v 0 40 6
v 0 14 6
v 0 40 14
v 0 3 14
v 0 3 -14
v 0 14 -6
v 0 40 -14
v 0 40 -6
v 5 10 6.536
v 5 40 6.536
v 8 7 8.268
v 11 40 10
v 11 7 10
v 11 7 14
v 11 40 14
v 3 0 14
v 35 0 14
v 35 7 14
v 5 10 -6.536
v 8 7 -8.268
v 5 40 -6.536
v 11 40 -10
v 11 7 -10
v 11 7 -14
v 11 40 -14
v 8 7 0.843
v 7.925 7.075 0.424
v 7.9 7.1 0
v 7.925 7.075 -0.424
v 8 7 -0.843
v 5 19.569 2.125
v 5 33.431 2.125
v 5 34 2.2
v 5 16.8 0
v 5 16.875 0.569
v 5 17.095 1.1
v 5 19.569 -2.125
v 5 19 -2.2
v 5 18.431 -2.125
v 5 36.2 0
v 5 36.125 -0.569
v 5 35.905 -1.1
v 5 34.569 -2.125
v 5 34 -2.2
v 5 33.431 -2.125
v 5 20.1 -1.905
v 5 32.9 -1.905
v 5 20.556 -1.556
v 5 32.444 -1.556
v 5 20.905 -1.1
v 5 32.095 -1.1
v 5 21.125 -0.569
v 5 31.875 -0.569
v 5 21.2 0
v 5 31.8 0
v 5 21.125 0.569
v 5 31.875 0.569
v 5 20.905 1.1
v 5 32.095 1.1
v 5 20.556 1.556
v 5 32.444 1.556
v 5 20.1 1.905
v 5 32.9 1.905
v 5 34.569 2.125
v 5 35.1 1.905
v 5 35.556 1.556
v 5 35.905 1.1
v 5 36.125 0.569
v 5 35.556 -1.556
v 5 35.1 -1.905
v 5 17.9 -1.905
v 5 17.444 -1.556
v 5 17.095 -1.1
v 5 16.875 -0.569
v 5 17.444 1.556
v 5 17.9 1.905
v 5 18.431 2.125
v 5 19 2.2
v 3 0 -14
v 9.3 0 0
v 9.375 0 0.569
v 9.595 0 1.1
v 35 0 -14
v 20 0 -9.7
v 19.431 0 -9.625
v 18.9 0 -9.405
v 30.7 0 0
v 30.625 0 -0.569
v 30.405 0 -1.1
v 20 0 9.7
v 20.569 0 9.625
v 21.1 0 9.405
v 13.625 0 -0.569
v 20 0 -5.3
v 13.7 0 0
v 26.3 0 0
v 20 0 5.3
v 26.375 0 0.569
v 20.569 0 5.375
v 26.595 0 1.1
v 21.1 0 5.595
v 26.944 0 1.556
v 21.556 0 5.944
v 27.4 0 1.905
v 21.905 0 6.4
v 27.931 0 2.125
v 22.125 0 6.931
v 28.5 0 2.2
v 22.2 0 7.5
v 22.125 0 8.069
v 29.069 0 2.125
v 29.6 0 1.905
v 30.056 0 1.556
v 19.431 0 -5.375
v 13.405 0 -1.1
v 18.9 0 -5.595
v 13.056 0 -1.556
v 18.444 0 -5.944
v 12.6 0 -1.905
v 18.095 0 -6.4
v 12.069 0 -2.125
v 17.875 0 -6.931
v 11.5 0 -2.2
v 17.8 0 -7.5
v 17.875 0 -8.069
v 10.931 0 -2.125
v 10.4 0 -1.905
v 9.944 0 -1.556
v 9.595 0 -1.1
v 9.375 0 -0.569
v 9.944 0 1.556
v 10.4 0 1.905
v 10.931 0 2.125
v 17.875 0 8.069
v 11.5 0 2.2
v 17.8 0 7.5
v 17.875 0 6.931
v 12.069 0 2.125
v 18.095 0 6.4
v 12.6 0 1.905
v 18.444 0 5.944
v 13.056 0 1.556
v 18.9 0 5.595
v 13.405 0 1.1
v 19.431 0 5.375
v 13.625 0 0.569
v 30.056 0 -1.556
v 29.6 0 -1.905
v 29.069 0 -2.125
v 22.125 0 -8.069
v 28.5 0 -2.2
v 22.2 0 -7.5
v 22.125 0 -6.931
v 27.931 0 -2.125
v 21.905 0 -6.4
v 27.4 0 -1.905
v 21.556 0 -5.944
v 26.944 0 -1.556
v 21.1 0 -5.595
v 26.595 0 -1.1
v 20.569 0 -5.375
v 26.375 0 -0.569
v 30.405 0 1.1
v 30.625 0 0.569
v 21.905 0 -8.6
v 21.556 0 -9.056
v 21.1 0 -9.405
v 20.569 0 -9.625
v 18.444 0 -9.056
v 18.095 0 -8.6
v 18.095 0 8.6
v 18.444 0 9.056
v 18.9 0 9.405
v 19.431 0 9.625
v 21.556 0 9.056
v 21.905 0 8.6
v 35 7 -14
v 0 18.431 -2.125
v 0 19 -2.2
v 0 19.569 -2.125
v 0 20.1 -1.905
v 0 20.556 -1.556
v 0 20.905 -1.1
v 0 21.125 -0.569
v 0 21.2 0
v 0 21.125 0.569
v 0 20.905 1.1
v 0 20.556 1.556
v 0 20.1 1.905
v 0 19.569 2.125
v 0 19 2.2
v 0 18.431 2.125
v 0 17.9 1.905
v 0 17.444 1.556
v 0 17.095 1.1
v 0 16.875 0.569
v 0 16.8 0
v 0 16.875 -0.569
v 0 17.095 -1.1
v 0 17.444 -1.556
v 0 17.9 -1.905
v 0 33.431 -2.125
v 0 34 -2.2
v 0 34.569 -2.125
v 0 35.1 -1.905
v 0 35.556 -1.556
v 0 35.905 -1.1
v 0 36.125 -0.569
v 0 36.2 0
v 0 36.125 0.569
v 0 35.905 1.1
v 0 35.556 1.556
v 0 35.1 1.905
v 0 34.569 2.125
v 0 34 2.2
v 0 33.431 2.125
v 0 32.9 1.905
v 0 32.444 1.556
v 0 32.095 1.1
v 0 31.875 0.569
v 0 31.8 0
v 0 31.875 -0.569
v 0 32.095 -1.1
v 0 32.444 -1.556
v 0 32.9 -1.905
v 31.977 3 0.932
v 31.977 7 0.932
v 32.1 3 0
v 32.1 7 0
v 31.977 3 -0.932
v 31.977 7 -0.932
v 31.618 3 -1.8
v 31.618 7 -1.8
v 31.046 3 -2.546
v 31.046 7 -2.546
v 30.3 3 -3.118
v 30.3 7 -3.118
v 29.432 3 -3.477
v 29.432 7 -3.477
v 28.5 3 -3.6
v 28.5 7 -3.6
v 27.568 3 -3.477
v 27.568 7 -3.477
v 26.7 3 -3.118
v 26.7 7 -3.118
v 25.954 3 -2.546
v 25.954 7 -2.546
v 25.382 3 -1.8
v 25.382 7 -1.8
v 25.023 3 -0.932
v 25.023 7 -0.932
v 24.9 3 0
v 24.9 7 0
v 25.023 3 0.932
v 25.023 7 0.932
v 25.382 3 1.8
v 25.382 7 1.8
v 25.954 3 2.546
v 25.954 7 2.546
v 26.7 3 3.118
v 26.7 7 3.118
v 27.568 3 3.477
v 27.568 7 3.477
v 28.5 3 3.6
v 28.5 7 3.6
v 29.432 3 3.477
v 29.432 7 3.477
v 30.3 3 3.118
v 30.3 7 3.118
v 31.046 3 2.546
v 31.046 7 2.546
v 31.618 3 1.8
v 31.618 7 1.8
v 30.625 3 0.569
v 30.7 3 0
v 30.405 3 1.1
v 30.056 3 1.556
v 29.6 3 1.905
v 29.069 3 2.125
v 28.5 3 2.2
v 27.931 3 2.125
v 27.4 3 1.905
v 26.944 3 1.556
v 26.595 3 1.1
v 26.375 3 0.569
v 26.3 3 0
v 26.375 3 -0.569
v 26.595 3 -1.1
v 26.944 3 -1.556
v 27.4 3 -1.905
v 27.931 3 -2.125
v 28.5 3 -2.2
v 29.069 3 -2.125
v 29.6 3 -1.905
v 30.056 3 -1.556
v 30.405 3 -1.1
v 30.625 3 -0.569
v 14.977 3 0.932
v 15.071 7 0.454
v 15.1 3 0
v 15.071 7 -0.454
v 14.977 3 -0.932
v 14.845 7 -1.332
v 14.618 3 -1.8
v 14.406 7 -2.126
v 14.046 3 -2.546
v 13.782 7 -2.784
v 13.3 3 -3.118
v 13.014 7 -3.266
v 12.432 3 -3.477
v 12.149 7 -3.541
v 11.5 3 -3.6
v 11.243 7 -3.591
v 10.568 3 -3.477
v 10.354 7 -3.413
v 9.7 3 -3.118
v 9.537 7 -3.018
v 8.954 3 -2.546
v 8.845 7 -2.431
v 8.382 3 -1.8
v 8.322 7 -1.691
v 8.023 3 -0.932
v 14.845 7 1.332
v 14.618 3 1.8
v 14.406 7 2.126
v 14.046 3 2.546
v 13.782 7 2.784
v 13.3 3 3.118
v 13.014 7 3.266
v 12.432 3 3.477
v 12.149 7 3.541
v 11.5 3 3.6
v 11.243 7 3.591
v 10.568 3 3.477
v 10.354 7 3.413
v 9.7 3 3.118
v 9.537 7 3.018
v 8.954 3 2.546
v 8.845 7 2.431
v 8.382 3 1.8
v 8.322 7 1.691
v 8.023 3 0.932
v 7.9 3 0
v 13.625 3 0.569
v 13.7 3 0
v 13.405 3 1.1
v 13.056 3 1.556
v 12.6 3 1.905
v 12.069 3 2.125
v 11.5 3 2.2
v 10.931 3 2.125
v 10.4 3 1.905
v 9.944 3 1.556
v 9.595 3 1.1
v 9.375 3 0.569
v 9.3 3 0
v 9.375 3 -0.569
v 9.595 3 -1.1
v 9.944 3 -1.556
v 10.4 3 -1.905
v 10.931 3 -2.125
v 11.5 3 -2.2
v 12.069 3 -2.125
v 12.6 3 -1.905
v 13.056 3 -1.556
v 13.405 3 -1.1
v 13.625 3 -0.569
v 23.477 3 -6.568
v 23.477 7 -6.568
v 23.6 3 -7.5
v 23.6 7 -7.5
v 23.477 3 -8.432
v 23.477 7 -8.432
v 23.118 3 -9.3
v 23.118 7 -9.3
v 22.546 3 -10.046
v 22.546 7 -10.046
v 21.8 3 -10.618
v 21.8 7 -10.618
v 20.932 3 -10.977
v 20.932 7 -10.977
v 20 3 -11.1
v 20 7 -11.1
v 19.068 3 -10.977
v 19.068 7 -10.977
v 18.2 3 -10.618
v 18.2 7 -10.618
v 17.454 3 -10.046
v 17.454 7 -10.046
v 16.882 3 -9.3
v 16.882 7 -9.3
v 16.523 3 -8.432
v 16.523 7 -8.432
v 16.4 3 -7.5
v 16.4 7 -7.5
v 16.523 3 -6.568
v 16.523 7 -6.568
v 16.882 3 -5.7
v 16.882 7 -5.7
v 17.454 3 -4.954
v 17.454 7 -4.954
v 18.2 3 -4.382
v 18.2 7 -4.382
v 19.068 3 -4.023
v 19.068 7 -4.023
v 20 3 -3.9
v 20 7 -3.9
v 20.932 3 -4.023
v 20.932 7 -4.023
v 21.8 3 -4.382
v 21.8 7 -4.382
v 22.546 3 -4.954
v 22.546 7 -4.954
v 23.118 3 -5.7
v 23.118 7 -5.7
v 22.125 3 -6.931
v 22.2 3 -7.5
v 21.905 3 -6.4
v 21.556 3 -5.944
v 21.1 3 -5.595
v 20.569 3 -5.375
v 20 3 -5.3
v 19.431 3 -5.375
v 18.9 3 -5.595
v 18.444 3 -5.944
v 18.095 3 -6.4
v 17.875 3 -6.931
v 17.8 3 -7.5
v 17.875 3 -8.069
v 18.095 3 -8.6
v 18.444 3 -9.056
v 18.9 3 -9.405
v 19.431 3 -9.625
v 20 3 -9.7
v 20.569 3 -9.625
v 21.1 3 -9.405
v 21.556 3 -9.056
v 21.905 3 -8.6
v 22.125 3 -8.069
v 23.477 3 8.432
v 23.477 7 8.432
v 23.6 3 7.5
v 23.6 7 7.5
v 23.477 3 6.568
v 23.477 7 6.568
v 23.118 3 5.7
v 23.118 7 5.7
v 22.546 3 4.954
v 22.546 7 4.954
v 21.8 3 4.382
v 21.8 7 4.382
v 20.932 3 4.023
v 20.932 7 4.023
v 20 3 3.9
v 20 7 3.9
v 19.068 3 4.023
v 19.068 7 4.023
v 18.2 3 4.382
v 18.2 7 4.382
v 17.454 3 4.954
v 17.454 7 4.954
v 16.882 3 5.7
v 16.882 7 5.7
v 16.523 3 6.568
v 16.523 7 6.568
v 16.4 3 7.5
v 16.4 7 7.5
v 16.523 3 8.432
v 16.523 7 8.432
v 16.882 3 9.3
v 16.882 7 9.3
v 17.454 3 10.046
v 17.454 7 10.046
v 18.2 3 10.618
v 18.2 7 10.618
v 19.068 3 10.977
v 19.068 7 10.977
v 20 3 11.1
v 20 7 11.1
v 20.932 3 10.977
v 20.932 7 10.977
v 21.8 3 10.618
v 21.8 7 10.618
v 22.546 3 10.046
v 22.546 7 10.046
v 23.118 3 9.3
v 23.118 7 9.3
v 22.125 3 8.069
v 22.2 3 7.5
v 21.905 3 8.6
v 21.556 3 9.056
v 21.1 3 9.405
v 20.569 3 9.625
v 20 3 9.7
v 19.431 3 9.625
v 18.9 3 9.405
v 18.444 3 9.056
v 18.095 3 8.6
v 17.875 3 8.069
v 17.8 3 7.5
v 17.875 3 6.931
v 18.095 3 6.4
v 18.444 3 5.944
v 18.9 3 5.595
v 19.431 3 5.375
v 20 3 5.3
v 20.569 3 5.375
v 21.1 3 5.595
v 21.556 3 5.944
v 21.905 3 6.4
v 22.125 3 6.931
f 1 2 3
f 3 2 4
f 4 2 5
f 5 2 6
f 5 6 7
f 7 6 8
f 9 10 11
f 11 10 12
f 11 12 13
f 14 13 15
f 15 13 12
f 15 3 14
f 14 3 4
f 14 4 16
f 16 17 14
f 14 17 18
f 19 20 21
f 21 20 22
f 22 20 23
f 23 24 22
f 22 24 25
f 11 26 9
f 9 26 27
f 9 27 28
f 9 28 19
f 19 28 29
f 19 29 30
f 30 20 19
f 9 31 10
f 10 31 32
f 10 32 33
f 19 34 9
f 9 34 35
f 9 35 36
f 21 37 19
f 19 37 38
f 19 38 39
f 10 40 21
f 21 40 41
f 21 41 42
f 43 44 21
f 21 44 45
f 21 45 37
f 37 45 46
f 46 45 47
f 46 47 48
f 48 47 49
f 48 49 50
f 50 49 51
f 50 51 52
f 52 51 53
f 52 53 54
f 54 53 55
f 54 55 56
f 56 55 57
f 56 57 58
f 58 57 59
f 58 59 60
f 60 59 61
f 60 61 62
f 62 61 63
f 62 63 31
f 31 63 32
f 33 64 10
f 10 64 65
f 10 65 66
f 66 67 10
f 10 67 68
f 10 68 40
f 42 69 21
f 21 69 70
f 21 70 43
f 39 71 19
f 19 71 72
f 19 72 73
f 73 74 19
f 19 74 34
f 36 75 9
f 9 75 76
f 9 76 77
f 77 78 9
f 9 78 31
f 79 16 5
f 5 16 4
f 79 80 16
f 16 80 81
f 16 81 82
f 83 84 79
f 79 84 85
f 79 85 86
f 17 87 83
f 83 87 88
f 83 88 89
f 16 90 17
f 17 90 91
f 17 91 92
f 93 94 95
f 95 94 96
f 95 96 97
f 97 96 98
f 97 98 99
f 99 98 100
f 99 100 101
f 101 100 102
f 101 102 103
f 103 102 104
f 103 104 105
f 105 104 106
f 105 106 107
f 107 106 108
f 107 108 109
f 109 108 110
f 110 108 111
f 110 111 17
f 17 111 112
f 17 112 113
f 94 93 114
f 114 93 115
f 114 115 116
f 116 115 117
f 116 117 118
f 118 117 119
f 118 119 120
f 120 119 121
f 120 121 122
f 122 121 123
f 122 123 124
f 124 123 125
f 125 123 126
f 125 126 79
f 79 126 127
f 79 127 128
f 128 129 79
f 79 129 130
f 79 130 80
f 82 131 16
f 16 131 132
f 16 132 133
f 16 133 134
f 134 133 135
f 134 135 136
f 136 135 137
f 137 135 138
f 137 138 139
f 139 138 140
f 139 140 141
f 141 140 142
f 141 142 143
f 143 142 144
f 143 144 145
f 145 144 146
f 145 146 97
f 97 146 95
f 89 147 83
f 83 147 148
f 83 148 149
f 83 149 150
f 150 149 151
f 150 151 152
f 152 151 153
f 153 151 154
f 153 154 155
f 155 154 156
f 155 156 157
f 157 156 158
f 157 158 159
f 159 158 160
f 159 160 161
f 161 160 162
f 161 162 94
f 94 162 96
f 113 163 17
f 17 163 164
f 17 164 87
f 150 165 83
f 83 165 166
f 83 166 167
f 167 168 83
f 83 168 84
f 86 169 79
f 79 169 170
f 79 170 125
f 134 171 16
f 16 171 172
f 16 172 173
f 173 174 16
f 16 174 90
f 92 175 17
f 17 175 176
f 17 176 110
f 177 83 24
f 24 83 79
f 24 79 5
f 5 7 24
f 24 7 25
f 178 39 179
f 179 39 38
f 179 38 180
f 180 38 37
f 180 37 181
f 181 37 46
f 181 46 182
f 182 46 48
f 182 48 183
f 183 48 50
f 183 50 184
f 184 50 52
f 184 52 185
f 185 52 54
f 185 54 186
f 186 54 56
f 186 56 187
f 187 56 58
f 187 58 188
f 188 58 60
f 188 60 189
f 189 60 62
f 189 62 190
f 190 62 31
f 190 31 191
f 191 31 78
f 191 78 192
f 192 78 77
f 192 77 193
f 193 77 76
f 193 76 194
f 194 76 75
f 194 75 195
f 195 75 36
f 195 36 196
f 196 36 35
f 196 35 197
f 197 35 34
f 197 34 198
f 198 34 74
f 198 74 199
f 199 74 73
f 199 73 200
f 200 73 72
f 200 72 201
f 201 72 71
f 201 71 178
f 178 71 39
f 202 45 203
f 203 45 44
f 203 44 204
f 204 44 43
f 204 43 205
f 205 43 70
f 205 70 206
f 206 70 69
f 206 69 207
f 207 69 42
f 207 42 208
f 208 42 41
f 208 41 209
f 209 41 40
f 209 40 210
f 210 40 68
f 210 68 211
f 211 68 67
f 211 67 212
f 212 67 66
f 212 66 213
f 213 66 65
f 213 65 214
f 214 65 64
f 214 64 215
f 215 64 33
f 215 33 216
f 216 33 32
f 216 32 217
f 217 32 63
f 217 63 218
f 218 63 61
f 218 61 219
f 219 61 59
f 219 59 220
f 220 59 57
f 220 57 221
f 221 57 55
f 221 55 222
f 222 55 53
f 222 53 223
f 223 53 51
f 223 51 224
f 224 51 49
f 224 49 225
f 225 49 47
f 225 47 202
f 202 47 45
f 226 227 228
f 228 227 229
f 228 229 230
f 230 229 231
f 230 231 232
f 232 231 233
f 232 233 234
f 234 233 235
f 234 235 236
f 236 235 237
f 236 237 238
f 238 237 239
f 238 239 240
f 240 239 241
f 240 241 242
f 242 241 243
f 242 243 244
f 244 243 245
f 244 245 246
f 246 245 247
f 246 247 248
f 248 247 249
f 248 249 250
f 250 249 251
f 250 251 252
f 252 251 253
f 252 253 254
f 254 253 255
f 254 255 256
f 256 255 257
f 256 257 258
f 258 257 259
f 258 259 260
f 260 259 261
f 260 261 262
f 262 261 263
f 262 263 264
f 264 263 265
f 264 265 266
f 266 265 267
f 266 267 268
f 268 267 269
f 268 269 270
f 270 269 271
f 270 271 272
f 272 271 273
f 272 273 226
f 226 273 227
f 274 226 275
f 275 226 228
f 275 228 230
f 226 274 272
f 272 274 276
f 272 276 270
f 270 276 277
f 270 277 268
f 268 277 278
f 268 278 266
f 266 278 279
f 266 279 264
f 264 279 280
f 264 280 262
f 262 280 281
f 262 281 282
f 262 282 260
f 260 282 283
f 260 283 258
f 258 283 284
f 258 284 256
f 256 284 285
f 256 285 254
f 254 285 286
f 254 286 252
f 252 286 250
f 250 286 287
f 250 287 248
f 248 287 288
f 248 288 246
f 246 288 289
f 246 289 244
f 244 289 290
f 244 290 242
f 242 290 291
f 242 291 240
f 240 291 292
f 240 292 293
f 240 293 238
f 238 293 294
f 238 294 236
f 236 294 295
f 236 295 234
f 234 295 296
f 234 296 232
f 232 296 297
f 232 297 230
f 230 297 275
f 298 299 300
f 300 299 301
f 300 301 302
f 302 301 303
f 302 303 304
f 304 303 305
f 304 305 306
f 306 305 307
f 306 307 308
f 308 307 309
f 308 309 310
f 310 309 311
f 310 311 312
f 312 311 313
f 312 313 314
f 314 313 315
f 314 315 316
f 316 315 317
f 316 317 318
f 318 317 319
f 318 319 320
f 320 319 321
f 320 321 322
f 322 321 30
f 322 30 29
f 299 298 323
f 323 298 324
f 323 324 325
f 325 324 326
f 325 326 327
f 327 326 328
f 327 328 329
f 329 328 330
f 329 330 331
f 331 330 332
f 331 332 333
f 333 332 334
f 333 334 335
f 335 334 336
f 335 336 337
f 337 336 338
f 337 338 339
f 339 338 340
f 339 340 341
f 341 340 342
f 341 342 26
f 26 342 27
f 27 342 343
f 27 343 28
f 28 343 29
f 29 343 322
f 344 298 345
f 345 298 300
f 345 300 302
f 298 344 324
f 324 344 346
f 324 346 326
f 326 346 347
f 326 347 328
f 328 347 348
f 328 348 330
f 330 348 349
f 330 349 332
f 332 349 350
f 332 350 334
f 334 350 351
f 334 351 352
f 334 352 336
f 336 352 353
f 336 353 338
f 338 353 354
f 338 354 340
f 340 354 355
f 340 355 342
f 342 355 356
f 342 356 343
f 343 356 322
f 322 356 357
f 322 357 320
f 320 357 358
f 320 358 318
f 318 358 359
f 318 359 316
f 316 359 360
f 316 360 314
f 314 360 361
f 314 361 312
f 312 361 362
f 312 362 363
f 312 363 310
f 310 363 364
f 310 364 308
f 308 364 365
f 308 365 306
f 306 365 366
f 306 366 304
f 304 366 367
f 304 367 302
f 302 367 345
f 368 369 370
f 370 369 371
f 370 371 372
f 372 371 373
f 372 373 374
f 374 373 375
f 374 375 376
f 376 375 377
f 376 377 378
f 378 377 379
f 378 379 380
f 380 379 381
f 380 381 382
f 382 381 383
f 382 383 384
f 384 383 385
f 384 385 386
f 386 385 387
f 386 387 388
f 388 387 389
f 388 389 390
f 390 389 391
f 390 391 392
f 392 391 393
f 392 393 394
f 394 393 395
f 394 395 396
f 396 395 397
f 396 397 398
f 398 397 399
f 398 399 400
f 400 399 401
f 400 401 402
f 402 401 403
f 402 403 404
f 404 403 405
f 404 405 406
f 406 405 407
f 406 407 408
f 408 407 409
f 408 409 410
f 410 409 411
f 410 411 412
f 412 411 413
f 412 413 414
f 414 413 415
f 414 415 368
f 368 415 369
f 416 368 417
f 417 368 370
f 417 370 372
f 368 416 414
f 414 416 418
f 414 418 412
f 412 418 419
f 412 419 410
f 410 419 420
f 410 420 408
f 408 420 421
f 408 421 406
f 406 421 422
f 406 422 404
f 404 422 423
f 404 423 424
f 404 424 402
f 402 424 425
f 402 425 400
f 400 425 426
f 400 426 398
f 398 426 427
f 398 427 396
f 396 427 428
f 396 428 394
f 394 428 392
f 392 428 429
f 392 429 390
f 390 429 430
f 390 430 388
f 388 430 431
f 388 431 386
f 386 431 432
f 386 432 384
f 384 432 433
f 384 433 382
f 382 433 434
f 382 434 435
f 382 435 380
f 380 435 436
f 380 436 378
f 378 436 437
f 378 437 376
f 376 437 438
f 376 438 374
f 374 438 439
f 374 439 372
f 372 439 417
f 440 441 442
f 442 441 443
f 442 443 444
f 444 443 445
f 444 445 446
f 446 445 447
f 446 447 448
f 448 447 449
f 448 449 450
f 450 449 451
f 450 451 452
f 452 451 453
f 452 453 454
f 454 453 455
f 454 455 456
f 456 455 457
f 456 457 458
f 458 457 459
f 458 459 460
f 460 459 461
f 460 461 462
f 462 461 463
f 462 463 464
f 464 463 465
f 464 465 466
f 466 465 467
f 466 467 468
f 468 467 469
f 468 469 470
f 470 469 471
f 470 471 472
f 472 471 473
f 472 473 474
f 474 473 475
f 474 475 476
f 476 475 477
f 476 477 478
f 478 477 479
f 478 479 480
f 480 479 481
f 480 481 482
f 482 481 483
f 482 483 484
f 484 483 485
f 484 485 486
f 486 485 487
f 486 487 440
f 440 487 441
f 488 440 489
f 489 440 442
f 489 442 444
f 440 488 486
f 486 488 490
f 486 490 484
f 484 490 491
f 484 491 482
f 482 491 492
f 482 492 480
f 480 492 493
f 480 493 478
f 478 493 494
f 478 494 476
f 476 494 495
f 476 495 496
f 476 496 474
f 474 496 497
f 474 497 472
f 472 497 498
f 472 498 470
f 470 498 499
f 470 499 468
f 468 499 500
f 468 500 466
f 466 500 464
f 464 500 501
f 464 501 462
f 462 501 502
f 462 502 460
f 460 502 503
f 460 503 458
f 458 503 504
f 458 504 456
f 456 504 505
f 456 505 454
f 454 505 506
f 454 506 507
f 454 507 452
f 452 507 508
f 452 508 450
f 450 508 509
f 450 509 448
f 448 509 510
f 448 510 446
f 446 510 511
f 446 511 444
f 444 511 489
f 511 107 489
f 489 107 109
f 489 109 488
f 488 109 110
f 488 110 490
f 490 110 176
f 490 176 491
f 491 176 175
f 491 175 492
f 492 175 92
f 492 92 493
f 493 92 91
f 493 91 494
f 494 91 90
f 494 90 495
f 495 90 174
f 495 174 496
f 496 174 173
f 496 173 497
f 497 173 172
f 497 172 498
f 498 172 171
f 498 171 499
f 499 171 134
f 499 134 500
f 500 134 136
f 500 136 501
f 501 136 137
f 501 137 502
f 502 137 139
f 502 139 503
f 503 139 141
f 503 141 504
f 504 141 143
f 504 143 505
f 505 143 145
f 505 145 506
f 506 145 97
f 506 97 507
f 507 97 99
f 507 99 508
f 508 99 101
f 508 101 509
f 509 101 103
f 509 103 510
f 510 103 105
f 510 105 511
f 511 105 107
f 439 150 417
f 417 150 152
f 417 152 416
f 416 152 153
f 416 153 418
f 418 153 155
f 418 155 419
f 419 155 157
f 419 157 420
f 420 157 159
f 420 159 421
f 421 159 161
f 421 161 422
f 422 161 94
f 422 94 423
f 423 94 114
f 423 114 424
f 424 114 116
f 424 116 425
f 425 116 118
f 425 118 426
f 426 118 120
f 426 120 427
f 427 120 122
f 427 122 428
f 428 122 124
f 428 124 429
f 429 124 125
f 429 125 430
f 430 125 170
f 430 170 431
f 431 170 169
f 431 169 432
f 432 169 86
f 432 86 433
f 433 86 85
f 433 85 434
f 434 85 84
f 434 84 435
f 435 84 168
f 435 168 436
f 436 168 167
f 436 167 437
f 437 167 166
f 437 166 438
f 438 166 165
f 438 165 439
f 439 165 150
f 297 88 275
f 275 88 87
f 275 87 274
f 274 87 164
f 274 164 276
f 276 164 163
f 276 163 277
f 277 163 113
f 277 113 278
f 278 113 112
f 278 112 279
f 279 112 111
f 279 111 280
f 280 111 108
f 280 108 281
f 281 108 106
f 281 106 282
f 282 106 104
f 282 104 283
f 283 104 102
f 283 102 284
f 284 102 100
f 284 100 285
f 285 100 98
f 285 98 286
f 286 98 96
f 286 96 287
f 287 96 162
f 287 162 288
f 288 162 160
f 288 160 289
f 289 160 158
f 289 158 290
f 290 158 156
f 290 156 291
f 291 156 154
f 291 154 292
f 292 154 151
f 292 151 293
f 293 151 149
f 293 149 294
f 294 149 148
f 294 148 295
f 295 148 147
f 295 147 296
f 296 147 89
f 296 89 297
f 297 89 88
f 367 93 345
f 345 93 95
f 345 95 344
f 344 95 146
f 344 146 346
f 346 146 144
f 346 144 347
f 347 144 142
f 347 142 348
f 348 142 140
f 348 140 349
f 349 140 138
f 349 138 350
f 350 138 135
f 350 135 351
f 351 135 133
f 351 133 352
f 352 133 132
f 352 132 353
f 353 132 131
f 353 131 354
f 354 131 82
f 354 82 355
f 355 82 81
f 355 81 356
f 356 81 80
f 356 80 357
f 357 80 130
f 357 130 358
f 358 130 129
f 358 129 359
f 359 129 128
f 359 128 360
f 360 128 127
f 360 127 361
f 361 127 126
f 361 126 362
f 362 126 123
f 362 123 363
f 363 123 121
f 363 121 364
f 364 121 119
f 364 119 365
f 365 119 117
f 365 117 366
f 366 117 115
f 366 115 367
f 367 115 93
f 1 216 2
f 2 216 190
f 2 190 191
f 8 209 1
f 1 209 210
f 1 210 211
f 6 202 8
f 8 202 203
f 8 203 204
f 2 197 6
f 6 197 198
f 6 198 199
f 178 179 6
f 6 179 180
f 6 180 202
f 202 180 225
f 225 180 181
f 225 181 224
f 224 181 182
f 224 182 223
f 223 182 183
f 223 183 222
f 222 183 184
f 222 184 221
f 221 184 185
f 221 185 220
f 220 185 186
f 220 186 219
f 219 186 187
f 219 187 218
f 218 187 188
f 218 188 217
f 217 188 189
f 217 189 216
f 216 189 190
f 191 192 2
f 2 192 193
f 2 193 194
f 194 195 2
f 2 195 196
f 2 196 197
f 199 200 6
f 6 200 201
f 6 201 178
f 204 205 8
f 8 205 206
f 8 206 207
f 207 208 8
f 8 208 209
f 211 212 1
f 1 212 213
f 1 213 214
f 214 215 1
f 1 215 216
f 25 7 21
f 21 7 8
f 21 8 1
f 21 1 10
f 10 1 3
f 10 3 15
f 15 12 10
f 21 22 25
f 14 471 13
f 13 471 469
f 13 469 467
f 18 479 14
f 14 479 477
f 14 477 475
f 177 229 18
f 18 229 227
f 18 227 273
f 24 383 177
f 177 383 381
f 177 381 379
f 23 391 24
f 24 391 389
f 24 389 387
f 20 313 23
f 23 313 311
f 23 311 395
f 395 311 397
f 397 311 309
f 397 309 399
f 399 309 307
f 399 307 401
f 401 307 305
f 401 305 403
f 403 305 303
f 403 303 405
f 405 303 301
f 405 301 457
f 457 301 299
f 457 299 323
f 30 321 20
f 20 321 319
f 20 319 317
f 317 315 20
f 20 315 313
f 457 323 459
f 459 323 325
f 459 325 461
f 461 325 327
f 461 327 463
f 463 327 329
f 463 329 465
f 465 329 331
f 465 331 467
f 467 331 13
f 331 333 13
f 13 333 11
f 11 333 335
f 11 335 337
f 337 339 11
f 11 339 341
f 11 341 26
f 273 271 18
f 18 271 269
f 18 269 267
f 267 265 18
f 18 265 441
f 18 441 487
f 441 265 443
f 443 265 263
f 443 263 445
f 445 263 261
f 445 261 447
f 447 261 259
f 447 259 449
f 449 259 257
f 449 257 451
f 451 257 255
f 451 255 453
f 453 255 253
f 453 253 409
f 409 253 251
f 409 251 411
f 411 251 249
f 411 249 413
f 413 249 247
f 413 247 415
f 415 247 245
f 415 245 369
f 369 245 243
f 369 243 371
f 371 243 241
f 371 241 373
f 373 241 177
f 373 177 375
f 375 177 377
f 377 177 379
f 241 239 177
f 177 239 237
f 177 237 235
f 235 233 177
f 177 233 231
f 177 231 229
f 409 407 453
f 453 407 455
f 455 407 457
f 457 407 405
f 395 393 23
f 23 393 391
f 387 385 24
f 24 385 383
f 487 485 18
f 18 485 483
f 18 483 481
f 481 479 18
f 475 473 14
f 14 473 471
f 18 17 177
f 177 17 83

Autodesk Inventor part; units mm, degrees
ref_plane "YZ Plane" through (0, 0, 0) normal (1, 0, 0) x (0, 1, 0)
ref_plane "XZ Plane" through (0, 0, 0) normal (0, 1, 0) x (-1, 0, 0)
ref_plane "XY Plane" through (0, 0, 0) normal (0, 0, 1) x (1, 0, 0)
sketch "Sketch1" plane through (0, 0, 0) normal (0, 0, 1) x (1, 0, 0)
  line L0 (35, 0) -> (0, 0)
  line L1 (0, 0) -> (0, 40)
  line L2 (0, 40) -> (5, 40)
  line L3 (5, 40) -> (5, 7)
  line L4 (5, 7) -> (35, 7)
  line L5 (35, 7) -> (35, 0)
  line L6 (-7, 0) -> (42, 0) projected
  line L7 (0, -8) -> (0, 48) projected
  dimension "d0" = 7
  dimension "d1" = 5
  dimension "d2" = 40
  dimension "d3" = 30
extrude "Extrusion1" add sketch "Sketch1" along normal mid plane 28
sketch "Sketch2" plane through (5, 7, 14) normal (0, 1, 0) x (1, 0, 0)
  circle A0 centre (15, 21.5) radius 2.2 projected
  circle A1 centre (23.5, 14) radius 2.2 projected
  circle A2 centre (15, 6.5) radius 2.2 projected
  circle A3 centre (6.5, 14) radius 2.2 projected
  point P0 (-5, 14)
extrude "Extrusion2" cut sketch "Sketch2" against normal through all
sketch "Sketch3" plane through (5, 7, 14) normal (0, 1, 0) x (1, 0, 0)
  circle A0 centre (15, 6.5) radius 2.2 projected
  circle A1 centre (15, 21.5) radius 2.2 projected
  circle A2 centre (23.5, 14) radius 2.2 projected
  circle A3 centre (6.5, 14) radius 2.2 projected
  line L0 (0, 28) -> (0, 0) projected
  line L1 (30, 0) -> (0, 0) projected
  line L2 (30, 28) -> (30, 0) projected
  line L3 (0, 28) -> (30, 28) projected
  circle A4 centre (6.5, 14) radius 3.6
  circle A5 centre (15, 21.5) radius 3.6
  circle A6 centre (23.5, 14) radius 2.2 projected
  circle A7 centre (23.5, 14) radius 3.6
  circle A8 centre (15, 6.5) radius 3.6
  point P0 (-5, 14)
  dimension "d8" = 7.2
extrude "Extrusion3" cut sketch "Sketch3" against normal blind 4 contours A4 | A5 | A7 | A8
chamfer "Chamfer1" distance 3 angle 45 1 edges at (5, 7, 0)
sketch "Sketch4" plane through (5, 40, 14) normal (1, 0, 0) x (0, 0, -1)
  line L0 (28, 0) -> (0, 0) projected
  line L1 (14, 0) -> (14, -21)
  circle A0 centre (14, -21) radius 2.2
  circle A1 centre (14, -6) radius 2.2
  point P0 (14, -40)
  dimension "d14" = 4.4
  dimension "d15" = 15
  dimension "d16" = 6
extrude "Extrusion4" cut sketch "Sketch4" against normal through all
chamfer "Chamfer2" distance 3 angle 45 1 edges at (0, 0, 0)
sketch "Sketch5" plane through (0, 40, 14) normal (0, 1, 0) x (1, 0, 0)
  line L0 (5, 28) -> (5, 0) projected
  line L1 (5, 28) -> (11, 28)
  line L2 (35, 28) -> (3, 28) projected
  line L3 (11, 24) -> (5, 20.5359)
  line L4 (11, 28) -> (11, 24)
  point P0 (0, 14)
  dimension "d22" = 60
  dimension "d23" = 6
  dimension "d24" = 4
extrude "Extrusion5" add sketch "Sketch5" against normal up to surface (33 mm away)
mirror "Mirror1" about plane through (0, 0, 0) normal (0, 0, 1) of "Extrusion5"
sketch "Sketch6" plane through (0, 40, -14) normal (-1, 0, 0) x (0, 0, 1)
  line L0 (0, 0) -> (28, 0) projected
  line L1 (8, 0) -> (20, 0)
  line L2 (20, 0) -> (20, -26)
  line L3 (20, -26) -> (8, -26)
  line L4 (8, -26) -> (8, 0)
  circle A0 centre (14, -21) radius 2.2 projected
  point P0 (14, -40)
  point P1 (14, 0)
  dimension "d27" = 12
  dimension "d28" = 5
split_face "Split1"
properties part number "Test Mount"
